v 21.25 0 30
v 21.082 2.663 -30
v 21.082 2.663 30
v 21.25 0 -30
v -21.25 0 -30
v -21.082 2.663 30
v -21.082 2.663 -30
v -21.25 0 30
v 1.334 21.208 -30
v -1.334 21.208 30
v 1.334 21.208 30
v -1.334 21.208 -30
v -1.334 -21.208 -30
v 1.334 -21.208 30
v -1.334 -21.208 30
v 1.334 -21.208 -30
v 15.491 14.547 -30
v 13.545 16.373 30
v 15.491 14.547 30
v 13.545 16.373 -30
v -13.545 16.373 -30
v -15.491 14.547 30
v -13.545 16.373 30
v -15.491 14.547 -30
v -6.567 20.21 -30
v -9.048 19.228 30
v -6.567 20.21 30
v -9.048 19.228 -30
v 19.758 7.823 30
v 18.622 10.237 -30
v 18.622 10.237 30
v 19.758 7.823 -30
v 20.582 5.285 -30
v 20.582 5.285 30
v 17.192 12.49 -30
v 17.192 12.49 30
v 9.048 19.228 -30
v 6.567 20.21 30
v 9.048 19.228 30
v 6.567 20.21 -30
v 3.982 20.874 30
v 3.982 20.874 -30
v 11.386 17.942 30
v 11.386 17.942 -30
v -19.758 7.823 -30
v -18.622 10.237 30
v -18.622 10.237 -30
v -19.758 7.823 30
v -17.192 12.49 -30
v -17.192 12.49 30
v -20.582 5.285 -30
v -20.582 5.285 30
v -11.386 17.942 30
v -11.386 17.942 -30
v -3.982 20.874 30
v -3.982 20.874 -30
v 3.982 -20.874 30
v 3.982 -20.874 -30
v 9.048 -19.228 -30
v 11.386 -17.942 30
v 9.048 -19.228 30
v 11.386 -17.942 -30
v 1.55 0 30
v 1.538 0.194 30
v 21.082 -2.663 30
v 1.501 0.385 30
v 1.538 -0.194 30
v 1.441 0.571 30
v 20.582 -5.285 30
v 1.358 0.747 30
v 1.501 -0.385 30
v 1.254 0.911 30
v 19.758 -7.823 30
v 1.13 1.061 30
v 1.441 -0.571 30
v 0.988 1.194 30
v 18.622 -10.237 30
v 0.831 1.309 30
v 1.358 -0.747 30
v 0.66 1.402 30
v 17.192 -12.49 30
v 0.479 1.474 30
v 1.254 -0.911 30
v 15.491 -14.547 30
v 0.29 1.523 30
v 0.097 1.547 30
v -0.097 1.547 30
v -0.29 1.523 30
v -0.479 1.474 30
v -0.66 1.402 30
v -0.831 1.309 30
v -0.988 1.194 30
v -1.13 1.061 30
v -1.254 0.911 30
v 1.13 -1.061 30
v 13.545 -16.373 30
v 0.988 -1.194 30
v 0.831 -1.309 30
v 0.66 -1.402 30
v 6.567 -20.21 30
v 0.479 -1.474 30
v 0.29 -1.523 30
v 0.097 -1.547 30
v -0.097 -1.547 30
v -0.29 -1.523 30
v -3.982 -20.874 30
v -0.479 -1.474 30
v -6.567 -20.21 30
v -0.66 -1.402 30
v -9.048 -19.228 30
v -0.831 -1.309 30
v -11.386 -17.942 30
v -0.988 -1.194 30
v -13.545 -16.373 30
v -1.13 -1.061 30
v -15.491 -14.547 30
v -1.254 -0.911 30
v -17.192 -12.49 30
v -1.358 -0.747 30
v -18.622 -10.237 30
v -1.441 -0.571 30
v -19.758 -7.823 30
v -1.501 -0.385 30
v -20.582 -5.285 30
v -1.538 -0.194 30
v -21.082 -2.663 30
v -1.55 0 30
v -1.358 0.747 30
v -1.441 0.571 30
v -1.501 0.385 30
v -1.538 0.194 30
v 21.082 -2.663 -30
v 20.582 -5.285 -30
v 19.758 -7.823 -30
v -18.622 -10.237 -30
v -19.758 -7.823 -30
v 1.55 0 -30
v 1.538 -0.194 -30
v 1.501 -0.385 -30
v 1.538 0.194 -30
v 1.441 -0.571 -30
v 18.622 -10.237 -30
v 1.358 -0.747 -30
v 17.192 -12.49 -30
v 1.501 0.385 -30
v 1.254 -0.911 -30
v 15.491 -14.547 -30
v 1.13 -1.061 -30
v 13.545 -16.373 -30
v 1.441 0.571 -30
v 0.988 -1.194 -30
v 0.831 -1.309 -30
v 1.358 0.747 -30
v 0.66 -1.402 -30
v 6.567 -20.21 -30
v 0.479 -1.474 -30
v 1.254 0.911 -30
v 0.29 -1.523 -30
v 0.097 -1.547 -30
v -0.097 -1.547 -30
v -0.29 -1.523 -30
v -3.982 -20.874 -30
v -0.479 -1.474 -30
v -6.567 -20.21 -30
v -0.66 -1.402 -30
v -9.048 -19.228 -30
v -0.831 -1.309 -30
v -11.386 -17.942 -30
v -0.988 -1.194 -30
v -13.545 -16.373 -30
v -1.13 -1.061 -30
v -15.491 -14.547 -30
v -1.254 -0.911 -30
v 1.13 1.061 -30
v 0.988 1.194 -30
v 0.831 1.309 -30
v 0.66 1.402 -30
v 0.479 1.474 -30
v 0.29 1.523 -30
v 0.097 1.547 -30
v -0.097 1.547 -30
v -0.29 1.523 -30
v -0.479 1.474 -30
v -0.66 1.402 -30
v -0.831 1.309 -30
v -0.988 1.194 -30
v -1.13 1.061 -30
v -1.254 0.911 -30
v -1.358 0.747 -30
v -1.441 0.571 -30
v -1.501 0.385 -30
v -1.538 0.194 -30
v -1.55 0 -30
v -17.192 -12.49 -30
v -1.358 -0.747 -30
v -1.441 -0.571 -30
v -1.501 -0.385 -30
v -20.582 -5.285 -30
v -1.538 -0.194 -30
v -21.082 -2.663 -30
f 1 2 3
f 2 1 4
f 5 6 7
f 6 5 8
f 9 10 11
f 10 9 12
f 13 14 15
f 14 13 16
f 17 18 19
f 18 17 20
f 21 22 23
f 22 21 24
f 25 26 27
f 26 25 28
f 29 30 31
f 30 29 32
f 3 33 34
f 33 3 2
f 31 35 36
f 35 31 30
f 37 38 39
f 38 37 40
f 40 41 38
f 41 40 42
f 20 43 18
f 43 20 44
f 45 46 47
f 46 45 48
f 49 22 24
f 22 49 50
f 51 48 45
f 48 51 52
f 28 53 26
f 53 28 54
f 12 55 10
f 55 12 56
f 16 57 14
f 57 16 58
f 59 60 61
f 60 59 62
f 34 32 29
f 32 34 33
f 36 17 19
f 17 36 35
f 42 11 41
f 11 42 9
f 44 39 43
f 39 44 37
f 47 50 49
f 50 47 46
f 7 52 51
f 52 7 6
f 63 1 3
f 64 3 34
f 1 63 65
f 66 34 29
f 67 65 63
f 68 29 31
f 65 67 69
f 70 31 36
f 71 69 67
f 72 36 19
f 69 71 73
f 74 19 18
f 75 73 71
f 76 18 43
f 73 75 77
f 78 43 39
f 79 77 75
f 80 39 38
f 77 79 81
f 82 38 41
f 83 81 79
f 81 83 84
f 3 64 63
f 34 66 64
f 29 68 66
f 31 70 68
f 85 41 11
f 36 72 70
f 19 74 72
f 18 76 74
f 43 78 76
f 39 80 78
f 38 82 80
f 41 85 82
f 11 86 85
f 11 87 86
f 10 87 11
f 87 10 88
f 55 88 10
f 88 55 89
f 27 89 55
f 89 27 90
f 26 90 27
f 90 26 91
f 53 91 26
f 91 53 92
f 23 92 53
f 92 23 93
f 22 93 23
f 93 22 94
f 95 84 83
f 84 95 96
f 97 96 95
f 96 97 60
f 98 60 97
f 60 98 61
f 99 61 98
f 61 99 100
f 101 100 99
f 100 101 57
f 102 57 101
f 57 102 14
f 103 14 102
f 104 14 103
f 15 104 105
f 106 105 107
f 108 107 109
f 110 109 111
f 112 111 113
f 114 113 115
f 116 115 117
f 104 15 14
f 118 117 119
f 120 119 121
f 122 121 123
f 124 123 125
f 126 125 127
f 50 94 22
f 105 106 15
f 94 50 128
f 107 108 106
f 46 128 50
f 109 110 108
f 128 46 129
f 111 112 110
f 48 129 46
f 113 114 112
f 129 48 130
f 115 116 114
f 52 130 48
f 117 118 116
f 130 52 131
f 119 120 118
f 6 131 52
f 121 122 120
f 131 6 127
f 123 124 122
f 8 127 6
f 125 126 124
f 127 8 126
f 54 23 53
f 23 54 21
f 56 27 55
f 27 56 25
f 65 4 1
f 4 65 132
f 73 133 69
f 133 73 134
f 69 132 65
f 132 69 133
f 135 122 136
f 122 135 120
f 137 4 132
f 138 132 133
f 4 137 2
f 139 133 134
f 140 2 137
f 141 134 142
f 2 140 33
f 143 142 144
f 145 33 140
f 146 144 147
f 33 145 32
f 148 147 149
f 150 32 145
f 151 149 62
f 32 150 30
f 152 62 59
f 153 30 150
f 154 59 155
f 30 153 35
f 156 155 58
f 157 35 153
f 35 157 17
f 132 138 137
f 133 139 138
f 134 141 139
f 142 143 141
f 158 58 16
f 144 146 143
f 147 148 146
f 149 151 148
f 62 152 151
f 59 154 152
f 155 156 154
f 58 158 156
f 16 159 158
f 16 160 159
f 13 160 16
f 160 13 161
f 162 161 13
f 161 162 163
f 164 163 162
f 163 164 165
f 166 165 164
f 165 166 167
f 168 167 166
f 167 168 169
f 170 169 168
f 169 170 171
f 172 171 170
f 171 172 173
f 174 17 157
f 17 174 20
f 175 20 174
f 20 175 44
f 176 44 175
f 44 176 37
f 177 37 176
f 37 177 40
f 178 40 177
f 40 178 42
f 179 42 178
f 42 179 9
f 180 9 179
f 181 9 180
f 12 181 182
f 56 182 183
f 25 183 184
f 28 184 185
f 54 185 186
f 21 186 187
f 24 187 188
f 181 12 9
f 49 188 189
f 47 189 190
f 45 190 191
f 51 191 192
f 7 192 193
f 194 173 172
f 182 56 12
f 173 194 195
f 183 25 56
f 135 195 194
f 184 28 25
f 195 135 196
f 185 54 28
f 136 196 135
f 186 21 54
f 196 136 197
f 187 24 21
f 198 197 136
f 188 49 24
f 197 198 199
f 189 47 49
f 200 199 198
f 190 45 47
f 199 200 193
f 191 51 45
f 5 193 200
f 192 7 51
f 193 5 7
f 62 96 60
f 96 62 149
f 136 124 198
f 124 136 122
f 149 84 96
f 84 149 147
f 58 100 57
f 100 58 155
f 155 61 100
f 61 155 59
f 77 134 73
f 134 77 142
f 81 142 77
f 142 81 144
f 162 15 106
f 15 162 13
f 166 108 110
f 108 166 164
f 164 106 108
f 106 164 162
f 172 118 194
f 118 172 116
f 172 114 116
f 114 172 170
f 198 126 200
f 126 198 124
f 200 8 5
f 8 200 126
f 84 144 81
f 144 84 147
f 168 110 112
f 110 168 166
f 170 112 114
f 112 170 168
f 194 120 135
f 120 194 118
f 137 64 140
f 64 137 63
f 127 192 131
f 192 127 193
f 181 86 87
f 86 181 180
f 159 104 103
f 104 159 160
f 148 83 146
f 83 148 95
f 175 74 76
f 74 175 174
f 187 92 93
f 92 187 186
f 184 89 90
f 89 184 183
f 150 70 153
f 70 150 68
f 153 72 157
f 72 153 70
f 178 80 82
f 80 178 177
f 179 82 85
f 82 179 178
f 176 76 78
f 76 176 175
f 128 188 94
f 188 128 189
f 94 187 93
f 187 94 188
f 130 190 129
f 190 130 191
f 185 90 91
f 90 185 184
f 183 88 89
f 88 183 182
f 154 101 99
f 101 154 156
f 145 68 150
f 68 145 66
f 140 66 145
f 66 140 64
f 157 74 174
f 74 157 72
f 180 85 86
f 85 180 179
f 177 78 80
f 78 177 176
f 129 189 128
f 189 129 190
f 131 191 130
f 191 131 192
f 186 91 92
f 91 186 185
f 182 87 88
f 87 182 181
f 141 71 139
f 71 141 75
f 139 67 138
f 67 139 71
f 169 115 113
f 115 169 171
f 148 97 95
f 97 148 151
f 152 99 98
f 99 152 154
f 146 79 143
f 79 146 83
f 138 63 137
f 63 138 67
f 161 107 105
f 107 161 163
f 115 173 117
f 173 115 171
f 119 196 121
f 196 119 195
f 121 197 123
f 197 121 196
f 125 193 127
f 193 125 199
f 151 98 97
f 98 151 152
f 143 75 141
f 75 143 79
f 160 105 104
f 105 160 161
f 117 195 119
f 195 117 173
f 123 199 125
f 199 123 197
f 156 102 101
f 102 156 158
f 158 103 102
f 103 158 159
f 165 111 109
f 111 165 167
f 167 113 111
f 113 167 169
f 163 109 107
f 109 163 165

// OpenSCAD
$fn = 50;


difference() {
	union() {
		translate(v = [0, 0, -30.0000000000]) {
			cylinder(h = 60, r = 21.2500000000);
		}
	}
	union() {
		translate(v = [0, 0, -100.0000000000]) {
			cylinder(h = 200, r = 1.5500000000);
		}
	}
}
